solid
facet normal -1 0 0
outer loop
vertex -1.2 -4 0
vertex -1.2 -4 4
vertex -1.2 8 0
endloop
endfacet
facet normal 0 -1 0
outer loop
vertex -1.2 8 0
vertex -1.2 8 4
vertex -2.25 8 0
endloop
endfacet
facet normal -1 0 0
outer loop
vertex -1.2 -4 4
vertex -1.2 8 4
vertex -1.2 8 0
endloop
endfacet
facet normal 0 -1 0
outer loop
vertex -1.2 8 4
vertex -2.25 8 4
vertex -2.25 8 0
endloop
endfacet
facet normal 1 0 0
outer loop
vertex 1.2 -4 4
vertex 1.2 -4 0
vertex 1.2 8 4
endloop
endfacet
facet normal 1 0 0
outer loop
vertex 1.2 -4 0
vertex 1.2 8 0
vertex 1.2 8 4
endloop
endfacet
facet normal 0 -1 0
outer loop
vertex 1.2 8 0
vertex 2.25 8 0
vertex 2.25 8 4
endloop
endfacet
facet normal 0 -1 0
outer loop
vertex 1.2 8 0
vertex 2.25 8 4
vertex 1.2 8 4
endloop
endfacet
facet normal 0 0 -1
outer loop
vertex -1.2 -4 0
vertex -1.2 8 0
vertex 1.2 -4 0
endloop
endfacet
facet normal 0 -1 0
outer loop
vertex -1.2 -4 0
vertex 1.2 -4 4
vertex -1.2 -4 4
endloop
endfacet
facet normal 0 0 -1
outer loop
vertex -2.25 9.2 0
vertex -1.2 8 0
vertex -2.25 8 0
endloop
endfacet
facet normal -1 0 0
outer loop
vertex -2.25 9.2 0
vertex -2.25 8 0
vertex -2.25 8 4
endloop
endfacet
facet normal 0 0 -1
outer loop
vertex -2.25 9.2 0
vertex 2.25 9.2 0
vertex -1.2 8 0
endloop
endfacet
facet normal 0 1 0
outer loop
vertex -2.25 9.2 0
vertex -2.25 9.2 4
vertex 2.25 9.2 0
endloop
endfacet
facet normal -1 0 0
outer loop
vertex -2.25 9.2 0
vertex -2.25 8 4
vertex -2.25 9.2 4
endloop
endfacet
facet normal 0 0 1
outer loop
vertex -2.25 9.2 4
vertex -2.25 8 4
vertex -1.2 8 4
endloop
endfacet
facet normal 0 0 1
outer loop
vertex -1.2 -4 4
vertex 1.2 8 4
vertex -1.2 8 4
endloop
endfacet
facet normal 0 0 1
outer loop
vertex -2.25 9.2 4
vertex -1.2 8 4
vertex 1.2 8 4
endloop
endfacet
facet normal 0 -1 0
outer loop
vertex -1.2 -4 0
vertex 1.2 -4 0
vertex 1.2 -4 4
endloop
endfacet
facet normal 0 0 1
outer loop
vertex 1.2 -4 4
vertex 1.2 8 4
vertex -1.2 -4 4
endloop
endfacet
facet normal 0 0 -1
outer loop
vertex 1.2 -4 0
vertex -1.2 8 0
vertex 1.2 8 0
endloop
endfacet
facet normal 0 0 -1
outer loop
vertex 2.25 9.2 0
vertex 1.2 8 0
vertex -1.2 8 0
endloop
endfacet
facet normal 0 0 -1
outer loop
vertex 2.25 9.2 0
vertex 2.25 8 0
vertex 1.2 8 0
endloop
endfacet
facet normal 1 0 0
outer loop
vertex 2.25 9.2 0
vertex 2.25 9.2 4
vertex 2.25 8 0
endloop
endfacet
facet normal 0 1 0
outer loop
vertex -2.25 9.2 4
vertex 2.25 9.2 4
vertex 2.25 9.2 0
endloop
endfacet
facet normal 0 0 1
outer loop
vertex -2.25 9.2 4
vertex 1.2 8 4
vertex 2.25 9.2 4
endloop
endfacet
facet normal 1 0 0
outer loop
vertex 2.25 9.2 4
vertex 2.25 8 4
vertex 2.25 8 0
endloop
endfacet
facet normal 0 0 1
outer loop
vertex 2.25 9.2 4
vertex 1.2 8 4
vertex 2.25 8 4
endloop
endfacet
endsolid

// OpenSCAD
$fn = 50;

difference() {
	union() {
		translate(v = [0, 0, 0]) {
			rotate(a = [0, 0, 0]) {
				difference() {
					union() {
						translate(v = [-2.25, -4.0, 0]) {
							cube(size = [4.5, 13.2, 4.0]);
						}
					}
					union() {
						translate(v = [-2.35, -4.1, -0.1]) {
							cube(size = [1.1500000000000001, 12.1, 4.2]);
						}
						translate(v = [1.2, -4.1, -0.1]) {
							cube(size = [1.1500000000000001, 12.1, 4.2]);
						}
					}
				}
			}
		}
	}
	union();
}
